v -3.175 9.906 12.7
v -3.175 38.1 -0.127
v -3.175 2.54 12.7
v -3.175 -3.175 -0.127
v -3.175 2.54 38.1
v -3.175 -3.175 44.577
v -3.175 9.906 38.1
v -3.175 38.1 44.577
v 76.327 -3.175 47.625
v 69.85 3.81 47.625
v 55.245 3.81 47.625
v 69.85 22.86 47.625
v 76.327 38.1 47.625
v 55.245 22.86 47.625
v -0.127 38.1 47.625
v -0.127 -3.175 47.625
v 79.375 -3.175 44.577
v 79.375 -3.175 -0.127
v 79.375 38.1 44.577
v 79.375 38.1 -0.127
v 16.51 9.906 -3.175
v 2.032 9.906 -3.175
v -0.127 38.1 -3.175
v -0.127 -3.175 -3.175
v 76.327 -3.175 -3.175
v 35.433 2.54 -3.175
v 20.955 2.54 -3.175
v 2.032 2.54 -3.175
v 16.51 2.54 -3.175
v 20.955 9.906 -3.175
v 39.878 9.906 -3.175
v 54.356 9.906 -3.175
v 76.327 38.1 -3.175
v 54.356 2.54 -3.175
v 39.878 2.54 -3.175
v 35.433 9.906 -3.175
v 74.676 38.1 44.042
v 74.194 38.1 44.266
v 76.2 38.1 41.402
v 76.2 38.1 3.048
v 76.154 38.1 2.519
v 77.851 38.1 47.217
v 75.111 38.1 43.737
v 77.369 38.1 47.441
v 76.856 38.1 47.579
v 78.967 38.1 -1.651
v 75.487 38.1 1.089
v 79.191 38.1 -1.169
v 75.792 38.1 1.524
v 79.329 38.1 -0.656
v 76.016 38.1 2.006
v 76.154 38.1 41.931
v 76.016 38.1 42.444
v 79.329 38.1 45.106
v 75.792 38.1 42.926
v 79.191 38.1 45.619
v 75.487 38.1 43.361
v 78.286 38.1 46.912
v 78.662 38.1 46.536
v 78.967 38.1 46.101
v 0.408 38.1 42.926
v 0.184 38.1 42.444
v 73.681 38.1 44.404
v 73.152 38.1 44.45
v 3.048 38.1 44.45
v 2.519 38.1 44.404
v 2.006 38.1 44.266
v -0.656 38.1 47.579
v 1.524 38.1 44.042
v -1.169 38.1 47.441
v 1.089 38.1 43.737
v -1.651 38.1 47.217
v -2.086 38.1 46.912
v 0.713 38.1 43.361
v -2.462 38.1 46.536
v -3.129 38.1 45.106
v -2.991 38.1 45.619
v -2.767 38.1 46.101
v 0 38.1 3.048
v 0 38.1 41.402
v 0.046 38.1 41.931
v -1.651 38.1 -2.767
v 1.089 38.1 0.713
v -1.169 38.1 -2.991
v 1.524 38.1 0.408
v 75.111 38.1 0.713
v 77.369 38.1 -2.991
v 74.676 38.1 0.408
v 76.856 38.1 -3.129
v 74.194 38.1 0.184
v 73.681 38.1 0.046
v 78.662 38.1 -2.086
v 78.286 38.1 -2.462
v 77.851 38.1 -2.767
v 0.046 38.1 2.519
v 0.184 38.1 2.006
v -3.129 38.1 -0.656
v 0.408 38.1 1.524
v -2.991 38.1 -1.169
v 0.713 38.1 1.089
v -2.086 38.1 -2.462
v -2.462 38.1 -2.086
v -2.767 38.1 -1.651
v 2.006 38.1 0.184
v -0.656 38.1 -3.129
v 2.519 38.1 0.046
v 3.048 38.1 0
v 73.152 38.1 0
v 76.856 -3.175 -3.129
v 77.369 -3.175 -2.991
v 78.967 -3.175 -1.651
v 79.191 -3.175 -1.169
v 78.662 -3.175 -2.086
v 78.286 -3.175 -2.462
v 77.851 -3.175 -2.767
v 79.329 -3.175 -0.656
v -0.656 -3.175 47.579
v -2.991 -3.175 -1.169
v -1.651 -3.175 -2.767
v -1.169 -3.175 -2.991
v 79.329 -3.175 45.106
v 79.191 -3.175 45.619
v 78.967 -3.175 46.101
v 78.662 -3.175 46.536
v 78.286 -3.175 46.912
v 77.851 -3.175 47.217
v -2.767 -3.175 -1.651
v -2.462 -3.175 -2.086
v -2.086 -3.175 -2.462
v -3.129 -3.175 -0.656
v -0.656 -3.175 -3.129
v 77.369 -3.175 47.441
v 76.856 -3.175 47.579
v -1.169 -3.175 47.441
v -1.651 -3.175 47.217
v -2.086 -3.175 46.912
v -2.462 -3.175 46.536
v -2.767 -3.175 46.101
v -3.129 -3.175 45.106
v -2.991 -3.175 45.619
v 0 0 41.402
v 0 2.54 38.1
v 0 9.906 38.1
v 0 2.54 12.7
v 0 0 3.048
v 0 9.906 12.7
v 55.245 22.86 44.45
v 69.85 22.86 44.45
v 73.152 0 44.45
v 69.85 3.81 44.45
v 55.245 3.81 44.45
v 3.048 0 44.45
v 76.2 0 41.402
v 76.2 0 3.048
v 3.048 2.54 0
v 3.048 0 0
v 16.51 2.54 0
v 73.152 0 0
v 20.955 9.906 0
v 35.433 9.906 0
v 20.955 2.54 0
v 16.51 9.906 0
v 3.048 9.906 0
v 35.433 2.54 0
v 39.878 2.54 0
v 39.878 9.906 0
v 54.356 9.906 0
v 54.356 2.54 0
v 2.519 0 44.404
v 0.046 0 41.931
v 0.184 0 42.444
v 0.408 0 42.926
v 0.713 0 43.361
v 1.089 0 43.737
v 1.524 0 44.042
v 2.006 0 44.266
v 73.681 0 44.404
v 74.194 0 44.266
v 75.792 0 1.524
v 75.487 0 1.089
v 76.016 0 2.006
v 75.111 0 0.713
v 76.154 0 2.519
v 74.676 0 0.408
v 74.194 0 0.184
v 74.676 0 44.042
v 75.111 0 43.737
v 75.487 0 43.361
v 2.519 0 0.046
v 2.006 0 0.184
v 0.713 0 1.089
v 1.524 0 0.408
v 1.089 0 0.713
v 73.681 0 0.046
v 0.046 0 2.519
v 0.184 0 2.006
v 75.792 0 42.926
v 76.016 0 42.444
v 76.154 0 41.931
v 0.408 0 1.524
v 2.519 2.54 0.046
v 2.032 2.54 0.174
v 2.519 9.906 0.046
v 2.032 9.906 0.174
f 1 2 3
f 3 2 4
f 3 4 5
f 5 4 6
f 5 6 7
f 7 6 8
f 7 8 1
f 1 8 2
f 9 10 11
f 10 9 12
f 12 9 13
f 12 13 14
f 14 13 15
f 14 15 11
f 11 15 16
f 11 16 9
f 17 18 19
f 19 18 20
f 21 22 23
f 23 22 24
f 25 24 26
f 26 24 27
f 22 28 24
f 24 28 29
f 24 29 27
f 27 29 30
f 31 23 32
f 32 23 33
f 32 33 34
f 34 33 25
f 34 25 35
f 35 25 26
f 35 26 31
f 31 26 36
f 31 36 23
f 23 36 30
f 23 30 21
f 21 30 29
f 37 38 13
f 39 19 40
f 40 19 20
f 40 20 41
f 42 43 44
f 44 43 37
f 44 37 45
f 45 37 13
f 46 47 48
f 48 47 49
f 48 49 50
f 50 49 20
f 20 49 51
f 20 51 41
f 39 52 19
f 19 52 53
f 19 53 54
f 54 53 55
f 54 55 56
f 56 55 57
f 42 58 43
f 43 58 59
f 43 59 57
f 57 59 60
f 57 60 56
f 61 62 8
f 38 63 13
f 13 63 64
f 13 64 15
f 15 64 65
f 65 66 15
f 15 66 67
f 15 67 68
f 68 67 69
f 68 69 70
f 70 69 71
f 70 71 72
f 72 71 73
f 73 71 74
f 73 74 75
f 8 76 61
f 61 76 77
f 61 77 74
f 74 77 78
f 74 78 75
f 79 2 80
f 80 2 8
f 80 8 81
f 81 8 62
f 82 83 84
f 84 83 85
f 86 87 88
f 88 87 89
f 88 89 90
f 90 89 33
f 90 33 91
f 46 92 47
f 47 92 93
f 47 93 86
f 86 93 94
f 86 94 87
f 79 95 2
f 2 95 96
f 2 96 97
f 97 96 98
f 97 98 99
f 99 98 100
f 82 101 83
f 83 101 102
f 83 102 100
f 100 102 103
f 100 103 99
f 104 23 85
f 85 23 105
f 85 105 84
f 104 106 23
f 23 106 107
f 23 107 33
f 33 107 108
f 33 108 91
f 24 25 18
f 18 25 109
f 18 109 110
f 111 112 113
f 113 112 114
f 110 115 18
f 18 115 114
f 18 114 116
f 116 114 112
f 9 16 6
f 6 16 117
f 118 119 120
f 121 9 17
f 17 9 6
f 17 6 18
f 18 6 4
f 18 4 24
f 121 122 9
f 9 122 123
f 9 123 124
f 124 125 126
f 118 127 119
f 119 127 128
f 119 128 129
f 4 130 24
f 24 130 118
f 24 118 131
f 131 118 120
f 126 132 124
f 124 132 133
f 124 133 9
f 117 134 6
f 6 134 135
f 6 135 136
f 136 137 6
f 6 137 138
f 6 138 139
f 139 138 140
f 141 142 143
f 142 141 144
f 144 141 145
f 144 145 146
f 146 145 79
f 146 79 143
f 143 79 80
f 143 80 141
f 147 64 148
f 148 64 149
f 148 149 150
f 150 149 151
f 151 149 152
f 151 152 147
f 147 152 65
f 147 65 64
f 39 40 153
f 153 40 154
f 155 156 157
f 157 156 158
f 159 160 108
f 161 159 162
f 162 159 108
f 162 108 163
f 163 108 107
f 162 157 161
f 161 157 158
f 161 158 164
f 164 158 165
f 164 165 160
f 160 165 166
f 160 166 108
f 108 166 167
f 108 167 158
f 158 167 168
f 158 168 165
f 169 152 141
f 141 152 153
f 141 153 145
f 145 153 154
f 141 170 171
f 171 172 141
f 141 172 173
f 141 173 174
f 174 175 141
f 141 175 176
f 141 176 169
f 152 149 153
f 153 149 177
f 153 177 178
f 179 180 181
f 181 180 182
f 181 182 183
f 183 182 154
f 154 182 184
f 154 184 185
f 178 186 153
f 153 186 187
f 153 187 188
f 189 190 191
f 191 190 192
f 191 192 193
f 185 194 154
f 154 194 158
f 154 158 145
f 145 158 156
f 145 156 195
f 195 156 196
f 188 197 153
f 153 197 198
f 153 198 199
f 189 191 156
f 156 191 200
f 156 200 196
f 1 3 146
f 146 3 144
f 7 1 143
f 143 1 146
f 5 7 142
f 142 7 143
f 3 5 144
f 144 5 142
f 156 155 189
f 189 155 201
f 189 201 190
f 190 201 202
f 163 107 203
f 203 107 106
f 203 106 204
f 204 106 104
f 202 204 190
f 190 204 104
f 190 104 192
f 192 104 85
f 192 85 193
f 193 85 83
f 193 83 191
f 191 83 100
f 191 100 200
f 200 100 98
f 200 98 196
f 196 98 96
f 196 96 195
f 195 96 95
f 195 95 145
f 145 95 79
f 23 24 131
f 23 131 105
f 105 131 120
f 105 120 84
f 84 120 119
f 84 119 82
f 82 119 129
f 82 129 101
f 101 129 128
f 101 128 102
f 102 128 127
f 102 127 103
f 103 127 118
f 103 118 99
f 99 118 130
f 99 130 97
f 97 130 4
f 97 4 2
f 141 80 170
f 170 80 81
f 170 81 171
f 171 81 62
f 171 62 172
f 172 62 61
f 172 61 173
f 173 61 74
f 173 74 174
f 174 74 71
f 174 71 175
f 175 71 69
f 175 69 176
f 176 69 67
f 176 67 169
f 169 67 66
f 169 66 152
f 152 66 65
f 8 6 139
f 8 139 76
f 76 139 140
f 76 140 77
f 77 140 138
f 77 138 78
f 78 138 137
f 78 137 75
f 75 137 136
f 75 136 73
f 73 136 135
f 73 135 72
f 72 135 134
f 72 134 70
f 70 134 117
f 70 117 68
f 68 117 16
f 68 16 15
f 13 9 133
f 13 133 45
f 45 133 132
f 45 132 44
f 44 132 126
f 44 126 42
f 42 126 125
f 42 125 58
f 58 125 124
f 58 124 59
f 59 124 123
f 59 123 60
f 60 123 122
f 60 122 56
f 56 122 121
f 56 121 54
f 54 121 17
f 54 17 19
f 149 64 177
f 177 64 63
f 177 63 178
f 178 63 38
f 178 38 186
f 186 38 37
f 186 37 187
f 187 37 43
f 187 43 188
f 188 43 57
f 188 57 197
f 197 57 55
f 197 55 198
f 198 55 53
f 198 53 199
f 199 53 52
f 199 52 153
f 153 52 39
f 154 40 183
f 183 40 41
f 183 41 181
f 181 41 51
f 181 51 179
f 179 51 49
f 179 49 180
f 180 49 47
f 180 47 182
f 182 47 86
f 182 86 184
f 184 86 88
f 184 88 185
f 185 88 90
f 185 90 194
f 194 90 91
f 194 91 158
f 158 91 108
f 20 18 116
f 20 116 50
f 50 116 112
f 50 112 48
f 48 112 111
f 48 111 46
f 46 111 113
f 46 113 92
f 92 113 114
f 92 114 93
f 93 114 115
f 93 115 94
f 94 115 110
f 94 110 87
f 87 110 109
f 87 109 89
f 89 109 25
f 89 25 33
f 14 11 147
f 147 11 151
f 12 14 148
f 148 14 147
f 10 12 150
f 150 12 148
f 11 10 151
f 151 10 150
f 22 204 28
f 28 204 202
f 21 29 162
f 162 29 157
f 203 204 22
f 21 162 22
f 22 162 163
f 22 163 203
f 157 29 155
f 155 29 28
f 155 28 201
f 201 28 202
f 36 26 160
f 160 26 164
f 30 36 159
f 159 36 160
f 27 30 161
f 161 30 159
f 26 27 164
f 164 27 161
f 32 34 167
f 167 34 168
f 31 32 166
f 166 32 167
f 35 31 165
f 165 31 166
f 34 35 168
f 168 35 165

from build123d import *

# Parameters (mm, degrees)
SKETCH1_W           = 76.2
SKETCH1_H           = 44.45
BOSS_EXTRUDE1_DEPTH = 38.1
SHELL1_T            = 3.175
SKETCH3_W           = 25.4
SKETCH3_H           = 7.366
CUT_EXTRUDE2_DEPTH  = 12.7
FILLET1_R           = 3.048
SKETCH6_W           = 14.605
SKETCH6_H           = 19.05
CUT_EXTRUDE4_DEPTH  = 12.7
SKETCH5_W           = 14.478
SKETCH5_H           = 7.366
CUT_EXTRUDE5_DEPTH  = 12.7


with BuildPart() as part:
    # Sketch1 → Boss-Extrude1 (new body)
    with BuildSketch(Plane(origin=(0, 0, 0), x_dir=(1, 0, 0), z_dir=(0, 1, 0))):
        with Locations((38.1, -22.225)):
            Rectangle(SKETCH1_W, SKETCH1_H)
    extrude(amount=BOSS_EXTRUDE1_DEPTH)

    # Shell1
    shell1_openings = [part.faces().sort_by_distance(p)[0] for p in [
        (38.1, 38.1, 22.225),
    ]]
    offset(amount=SHELL1_T, openings=shell1_openings, kind=Kind.INTERSECTION)

    # Sketch3 → Cut-Extrude2 (cut)
    with BuildSketch(Plane.ZY.offset(3.175)):
        with Locations((25.4, 6.223)):
            Rectangle(SKETCH3_W, SKETCH3_H)
    extrude(amount=-CUT_EXTRUDE2_DEPTH, mode=Mode.SUBTRACT)

    # Fillet1
    fillet1_edges = [part.edges().sort_by_distance(p)[0] for p in [
        (0, 19.05, 0),
        (0, 19.05, 44.45),
        (76.2, 19.05, 44.45),
        (76.2, 19.05, 0),
        (-3.175, 17.4625, -3.175),
        (79.375, 17.4625, -3.175),
        (79.375, 17.4625, 47.625),
        (-3.175, 17.4625, 47.625),
    ]]
    fillet(fillet1_edges, radius=FILLET1_R)

    # Sketch6 → Cut-Extrude4 (cut)
    with BuildSketch(Plane.XY.offset(47.625)):
        with Locations((62.5475, 13.335)):
            Rectangle(SKETCH6_W, SKETCH6_H)
    extrude(amount=-CUT_EXTRUDE4_DEPTH, mode=Mode.SUBTRACT)

    # Sketch5 → Cut-Extrude5 (cut)
    with BuildSketch(Plane(origin=(0, 0, -3.175), x_dir=(-1, 0, 0), z_dir=(0, 0, -1))):
        with Locations((-47.117, 6.223)):
            Rectangle(SKETCH5_W, SKETCH5_H)
        with Locations((-28.194, 6.223)):
            Rectangle(SKETCH5_W, SKETCH5_H)
        with Locations((-9.271, 6.223)):
            Rectangle(SKETCH5_W, SKETCH5_H)
    extrude(amount=-CUT_EXTRUDE5_DEPTH, mode=Mode.SUBTRACT)


solid = part.part
